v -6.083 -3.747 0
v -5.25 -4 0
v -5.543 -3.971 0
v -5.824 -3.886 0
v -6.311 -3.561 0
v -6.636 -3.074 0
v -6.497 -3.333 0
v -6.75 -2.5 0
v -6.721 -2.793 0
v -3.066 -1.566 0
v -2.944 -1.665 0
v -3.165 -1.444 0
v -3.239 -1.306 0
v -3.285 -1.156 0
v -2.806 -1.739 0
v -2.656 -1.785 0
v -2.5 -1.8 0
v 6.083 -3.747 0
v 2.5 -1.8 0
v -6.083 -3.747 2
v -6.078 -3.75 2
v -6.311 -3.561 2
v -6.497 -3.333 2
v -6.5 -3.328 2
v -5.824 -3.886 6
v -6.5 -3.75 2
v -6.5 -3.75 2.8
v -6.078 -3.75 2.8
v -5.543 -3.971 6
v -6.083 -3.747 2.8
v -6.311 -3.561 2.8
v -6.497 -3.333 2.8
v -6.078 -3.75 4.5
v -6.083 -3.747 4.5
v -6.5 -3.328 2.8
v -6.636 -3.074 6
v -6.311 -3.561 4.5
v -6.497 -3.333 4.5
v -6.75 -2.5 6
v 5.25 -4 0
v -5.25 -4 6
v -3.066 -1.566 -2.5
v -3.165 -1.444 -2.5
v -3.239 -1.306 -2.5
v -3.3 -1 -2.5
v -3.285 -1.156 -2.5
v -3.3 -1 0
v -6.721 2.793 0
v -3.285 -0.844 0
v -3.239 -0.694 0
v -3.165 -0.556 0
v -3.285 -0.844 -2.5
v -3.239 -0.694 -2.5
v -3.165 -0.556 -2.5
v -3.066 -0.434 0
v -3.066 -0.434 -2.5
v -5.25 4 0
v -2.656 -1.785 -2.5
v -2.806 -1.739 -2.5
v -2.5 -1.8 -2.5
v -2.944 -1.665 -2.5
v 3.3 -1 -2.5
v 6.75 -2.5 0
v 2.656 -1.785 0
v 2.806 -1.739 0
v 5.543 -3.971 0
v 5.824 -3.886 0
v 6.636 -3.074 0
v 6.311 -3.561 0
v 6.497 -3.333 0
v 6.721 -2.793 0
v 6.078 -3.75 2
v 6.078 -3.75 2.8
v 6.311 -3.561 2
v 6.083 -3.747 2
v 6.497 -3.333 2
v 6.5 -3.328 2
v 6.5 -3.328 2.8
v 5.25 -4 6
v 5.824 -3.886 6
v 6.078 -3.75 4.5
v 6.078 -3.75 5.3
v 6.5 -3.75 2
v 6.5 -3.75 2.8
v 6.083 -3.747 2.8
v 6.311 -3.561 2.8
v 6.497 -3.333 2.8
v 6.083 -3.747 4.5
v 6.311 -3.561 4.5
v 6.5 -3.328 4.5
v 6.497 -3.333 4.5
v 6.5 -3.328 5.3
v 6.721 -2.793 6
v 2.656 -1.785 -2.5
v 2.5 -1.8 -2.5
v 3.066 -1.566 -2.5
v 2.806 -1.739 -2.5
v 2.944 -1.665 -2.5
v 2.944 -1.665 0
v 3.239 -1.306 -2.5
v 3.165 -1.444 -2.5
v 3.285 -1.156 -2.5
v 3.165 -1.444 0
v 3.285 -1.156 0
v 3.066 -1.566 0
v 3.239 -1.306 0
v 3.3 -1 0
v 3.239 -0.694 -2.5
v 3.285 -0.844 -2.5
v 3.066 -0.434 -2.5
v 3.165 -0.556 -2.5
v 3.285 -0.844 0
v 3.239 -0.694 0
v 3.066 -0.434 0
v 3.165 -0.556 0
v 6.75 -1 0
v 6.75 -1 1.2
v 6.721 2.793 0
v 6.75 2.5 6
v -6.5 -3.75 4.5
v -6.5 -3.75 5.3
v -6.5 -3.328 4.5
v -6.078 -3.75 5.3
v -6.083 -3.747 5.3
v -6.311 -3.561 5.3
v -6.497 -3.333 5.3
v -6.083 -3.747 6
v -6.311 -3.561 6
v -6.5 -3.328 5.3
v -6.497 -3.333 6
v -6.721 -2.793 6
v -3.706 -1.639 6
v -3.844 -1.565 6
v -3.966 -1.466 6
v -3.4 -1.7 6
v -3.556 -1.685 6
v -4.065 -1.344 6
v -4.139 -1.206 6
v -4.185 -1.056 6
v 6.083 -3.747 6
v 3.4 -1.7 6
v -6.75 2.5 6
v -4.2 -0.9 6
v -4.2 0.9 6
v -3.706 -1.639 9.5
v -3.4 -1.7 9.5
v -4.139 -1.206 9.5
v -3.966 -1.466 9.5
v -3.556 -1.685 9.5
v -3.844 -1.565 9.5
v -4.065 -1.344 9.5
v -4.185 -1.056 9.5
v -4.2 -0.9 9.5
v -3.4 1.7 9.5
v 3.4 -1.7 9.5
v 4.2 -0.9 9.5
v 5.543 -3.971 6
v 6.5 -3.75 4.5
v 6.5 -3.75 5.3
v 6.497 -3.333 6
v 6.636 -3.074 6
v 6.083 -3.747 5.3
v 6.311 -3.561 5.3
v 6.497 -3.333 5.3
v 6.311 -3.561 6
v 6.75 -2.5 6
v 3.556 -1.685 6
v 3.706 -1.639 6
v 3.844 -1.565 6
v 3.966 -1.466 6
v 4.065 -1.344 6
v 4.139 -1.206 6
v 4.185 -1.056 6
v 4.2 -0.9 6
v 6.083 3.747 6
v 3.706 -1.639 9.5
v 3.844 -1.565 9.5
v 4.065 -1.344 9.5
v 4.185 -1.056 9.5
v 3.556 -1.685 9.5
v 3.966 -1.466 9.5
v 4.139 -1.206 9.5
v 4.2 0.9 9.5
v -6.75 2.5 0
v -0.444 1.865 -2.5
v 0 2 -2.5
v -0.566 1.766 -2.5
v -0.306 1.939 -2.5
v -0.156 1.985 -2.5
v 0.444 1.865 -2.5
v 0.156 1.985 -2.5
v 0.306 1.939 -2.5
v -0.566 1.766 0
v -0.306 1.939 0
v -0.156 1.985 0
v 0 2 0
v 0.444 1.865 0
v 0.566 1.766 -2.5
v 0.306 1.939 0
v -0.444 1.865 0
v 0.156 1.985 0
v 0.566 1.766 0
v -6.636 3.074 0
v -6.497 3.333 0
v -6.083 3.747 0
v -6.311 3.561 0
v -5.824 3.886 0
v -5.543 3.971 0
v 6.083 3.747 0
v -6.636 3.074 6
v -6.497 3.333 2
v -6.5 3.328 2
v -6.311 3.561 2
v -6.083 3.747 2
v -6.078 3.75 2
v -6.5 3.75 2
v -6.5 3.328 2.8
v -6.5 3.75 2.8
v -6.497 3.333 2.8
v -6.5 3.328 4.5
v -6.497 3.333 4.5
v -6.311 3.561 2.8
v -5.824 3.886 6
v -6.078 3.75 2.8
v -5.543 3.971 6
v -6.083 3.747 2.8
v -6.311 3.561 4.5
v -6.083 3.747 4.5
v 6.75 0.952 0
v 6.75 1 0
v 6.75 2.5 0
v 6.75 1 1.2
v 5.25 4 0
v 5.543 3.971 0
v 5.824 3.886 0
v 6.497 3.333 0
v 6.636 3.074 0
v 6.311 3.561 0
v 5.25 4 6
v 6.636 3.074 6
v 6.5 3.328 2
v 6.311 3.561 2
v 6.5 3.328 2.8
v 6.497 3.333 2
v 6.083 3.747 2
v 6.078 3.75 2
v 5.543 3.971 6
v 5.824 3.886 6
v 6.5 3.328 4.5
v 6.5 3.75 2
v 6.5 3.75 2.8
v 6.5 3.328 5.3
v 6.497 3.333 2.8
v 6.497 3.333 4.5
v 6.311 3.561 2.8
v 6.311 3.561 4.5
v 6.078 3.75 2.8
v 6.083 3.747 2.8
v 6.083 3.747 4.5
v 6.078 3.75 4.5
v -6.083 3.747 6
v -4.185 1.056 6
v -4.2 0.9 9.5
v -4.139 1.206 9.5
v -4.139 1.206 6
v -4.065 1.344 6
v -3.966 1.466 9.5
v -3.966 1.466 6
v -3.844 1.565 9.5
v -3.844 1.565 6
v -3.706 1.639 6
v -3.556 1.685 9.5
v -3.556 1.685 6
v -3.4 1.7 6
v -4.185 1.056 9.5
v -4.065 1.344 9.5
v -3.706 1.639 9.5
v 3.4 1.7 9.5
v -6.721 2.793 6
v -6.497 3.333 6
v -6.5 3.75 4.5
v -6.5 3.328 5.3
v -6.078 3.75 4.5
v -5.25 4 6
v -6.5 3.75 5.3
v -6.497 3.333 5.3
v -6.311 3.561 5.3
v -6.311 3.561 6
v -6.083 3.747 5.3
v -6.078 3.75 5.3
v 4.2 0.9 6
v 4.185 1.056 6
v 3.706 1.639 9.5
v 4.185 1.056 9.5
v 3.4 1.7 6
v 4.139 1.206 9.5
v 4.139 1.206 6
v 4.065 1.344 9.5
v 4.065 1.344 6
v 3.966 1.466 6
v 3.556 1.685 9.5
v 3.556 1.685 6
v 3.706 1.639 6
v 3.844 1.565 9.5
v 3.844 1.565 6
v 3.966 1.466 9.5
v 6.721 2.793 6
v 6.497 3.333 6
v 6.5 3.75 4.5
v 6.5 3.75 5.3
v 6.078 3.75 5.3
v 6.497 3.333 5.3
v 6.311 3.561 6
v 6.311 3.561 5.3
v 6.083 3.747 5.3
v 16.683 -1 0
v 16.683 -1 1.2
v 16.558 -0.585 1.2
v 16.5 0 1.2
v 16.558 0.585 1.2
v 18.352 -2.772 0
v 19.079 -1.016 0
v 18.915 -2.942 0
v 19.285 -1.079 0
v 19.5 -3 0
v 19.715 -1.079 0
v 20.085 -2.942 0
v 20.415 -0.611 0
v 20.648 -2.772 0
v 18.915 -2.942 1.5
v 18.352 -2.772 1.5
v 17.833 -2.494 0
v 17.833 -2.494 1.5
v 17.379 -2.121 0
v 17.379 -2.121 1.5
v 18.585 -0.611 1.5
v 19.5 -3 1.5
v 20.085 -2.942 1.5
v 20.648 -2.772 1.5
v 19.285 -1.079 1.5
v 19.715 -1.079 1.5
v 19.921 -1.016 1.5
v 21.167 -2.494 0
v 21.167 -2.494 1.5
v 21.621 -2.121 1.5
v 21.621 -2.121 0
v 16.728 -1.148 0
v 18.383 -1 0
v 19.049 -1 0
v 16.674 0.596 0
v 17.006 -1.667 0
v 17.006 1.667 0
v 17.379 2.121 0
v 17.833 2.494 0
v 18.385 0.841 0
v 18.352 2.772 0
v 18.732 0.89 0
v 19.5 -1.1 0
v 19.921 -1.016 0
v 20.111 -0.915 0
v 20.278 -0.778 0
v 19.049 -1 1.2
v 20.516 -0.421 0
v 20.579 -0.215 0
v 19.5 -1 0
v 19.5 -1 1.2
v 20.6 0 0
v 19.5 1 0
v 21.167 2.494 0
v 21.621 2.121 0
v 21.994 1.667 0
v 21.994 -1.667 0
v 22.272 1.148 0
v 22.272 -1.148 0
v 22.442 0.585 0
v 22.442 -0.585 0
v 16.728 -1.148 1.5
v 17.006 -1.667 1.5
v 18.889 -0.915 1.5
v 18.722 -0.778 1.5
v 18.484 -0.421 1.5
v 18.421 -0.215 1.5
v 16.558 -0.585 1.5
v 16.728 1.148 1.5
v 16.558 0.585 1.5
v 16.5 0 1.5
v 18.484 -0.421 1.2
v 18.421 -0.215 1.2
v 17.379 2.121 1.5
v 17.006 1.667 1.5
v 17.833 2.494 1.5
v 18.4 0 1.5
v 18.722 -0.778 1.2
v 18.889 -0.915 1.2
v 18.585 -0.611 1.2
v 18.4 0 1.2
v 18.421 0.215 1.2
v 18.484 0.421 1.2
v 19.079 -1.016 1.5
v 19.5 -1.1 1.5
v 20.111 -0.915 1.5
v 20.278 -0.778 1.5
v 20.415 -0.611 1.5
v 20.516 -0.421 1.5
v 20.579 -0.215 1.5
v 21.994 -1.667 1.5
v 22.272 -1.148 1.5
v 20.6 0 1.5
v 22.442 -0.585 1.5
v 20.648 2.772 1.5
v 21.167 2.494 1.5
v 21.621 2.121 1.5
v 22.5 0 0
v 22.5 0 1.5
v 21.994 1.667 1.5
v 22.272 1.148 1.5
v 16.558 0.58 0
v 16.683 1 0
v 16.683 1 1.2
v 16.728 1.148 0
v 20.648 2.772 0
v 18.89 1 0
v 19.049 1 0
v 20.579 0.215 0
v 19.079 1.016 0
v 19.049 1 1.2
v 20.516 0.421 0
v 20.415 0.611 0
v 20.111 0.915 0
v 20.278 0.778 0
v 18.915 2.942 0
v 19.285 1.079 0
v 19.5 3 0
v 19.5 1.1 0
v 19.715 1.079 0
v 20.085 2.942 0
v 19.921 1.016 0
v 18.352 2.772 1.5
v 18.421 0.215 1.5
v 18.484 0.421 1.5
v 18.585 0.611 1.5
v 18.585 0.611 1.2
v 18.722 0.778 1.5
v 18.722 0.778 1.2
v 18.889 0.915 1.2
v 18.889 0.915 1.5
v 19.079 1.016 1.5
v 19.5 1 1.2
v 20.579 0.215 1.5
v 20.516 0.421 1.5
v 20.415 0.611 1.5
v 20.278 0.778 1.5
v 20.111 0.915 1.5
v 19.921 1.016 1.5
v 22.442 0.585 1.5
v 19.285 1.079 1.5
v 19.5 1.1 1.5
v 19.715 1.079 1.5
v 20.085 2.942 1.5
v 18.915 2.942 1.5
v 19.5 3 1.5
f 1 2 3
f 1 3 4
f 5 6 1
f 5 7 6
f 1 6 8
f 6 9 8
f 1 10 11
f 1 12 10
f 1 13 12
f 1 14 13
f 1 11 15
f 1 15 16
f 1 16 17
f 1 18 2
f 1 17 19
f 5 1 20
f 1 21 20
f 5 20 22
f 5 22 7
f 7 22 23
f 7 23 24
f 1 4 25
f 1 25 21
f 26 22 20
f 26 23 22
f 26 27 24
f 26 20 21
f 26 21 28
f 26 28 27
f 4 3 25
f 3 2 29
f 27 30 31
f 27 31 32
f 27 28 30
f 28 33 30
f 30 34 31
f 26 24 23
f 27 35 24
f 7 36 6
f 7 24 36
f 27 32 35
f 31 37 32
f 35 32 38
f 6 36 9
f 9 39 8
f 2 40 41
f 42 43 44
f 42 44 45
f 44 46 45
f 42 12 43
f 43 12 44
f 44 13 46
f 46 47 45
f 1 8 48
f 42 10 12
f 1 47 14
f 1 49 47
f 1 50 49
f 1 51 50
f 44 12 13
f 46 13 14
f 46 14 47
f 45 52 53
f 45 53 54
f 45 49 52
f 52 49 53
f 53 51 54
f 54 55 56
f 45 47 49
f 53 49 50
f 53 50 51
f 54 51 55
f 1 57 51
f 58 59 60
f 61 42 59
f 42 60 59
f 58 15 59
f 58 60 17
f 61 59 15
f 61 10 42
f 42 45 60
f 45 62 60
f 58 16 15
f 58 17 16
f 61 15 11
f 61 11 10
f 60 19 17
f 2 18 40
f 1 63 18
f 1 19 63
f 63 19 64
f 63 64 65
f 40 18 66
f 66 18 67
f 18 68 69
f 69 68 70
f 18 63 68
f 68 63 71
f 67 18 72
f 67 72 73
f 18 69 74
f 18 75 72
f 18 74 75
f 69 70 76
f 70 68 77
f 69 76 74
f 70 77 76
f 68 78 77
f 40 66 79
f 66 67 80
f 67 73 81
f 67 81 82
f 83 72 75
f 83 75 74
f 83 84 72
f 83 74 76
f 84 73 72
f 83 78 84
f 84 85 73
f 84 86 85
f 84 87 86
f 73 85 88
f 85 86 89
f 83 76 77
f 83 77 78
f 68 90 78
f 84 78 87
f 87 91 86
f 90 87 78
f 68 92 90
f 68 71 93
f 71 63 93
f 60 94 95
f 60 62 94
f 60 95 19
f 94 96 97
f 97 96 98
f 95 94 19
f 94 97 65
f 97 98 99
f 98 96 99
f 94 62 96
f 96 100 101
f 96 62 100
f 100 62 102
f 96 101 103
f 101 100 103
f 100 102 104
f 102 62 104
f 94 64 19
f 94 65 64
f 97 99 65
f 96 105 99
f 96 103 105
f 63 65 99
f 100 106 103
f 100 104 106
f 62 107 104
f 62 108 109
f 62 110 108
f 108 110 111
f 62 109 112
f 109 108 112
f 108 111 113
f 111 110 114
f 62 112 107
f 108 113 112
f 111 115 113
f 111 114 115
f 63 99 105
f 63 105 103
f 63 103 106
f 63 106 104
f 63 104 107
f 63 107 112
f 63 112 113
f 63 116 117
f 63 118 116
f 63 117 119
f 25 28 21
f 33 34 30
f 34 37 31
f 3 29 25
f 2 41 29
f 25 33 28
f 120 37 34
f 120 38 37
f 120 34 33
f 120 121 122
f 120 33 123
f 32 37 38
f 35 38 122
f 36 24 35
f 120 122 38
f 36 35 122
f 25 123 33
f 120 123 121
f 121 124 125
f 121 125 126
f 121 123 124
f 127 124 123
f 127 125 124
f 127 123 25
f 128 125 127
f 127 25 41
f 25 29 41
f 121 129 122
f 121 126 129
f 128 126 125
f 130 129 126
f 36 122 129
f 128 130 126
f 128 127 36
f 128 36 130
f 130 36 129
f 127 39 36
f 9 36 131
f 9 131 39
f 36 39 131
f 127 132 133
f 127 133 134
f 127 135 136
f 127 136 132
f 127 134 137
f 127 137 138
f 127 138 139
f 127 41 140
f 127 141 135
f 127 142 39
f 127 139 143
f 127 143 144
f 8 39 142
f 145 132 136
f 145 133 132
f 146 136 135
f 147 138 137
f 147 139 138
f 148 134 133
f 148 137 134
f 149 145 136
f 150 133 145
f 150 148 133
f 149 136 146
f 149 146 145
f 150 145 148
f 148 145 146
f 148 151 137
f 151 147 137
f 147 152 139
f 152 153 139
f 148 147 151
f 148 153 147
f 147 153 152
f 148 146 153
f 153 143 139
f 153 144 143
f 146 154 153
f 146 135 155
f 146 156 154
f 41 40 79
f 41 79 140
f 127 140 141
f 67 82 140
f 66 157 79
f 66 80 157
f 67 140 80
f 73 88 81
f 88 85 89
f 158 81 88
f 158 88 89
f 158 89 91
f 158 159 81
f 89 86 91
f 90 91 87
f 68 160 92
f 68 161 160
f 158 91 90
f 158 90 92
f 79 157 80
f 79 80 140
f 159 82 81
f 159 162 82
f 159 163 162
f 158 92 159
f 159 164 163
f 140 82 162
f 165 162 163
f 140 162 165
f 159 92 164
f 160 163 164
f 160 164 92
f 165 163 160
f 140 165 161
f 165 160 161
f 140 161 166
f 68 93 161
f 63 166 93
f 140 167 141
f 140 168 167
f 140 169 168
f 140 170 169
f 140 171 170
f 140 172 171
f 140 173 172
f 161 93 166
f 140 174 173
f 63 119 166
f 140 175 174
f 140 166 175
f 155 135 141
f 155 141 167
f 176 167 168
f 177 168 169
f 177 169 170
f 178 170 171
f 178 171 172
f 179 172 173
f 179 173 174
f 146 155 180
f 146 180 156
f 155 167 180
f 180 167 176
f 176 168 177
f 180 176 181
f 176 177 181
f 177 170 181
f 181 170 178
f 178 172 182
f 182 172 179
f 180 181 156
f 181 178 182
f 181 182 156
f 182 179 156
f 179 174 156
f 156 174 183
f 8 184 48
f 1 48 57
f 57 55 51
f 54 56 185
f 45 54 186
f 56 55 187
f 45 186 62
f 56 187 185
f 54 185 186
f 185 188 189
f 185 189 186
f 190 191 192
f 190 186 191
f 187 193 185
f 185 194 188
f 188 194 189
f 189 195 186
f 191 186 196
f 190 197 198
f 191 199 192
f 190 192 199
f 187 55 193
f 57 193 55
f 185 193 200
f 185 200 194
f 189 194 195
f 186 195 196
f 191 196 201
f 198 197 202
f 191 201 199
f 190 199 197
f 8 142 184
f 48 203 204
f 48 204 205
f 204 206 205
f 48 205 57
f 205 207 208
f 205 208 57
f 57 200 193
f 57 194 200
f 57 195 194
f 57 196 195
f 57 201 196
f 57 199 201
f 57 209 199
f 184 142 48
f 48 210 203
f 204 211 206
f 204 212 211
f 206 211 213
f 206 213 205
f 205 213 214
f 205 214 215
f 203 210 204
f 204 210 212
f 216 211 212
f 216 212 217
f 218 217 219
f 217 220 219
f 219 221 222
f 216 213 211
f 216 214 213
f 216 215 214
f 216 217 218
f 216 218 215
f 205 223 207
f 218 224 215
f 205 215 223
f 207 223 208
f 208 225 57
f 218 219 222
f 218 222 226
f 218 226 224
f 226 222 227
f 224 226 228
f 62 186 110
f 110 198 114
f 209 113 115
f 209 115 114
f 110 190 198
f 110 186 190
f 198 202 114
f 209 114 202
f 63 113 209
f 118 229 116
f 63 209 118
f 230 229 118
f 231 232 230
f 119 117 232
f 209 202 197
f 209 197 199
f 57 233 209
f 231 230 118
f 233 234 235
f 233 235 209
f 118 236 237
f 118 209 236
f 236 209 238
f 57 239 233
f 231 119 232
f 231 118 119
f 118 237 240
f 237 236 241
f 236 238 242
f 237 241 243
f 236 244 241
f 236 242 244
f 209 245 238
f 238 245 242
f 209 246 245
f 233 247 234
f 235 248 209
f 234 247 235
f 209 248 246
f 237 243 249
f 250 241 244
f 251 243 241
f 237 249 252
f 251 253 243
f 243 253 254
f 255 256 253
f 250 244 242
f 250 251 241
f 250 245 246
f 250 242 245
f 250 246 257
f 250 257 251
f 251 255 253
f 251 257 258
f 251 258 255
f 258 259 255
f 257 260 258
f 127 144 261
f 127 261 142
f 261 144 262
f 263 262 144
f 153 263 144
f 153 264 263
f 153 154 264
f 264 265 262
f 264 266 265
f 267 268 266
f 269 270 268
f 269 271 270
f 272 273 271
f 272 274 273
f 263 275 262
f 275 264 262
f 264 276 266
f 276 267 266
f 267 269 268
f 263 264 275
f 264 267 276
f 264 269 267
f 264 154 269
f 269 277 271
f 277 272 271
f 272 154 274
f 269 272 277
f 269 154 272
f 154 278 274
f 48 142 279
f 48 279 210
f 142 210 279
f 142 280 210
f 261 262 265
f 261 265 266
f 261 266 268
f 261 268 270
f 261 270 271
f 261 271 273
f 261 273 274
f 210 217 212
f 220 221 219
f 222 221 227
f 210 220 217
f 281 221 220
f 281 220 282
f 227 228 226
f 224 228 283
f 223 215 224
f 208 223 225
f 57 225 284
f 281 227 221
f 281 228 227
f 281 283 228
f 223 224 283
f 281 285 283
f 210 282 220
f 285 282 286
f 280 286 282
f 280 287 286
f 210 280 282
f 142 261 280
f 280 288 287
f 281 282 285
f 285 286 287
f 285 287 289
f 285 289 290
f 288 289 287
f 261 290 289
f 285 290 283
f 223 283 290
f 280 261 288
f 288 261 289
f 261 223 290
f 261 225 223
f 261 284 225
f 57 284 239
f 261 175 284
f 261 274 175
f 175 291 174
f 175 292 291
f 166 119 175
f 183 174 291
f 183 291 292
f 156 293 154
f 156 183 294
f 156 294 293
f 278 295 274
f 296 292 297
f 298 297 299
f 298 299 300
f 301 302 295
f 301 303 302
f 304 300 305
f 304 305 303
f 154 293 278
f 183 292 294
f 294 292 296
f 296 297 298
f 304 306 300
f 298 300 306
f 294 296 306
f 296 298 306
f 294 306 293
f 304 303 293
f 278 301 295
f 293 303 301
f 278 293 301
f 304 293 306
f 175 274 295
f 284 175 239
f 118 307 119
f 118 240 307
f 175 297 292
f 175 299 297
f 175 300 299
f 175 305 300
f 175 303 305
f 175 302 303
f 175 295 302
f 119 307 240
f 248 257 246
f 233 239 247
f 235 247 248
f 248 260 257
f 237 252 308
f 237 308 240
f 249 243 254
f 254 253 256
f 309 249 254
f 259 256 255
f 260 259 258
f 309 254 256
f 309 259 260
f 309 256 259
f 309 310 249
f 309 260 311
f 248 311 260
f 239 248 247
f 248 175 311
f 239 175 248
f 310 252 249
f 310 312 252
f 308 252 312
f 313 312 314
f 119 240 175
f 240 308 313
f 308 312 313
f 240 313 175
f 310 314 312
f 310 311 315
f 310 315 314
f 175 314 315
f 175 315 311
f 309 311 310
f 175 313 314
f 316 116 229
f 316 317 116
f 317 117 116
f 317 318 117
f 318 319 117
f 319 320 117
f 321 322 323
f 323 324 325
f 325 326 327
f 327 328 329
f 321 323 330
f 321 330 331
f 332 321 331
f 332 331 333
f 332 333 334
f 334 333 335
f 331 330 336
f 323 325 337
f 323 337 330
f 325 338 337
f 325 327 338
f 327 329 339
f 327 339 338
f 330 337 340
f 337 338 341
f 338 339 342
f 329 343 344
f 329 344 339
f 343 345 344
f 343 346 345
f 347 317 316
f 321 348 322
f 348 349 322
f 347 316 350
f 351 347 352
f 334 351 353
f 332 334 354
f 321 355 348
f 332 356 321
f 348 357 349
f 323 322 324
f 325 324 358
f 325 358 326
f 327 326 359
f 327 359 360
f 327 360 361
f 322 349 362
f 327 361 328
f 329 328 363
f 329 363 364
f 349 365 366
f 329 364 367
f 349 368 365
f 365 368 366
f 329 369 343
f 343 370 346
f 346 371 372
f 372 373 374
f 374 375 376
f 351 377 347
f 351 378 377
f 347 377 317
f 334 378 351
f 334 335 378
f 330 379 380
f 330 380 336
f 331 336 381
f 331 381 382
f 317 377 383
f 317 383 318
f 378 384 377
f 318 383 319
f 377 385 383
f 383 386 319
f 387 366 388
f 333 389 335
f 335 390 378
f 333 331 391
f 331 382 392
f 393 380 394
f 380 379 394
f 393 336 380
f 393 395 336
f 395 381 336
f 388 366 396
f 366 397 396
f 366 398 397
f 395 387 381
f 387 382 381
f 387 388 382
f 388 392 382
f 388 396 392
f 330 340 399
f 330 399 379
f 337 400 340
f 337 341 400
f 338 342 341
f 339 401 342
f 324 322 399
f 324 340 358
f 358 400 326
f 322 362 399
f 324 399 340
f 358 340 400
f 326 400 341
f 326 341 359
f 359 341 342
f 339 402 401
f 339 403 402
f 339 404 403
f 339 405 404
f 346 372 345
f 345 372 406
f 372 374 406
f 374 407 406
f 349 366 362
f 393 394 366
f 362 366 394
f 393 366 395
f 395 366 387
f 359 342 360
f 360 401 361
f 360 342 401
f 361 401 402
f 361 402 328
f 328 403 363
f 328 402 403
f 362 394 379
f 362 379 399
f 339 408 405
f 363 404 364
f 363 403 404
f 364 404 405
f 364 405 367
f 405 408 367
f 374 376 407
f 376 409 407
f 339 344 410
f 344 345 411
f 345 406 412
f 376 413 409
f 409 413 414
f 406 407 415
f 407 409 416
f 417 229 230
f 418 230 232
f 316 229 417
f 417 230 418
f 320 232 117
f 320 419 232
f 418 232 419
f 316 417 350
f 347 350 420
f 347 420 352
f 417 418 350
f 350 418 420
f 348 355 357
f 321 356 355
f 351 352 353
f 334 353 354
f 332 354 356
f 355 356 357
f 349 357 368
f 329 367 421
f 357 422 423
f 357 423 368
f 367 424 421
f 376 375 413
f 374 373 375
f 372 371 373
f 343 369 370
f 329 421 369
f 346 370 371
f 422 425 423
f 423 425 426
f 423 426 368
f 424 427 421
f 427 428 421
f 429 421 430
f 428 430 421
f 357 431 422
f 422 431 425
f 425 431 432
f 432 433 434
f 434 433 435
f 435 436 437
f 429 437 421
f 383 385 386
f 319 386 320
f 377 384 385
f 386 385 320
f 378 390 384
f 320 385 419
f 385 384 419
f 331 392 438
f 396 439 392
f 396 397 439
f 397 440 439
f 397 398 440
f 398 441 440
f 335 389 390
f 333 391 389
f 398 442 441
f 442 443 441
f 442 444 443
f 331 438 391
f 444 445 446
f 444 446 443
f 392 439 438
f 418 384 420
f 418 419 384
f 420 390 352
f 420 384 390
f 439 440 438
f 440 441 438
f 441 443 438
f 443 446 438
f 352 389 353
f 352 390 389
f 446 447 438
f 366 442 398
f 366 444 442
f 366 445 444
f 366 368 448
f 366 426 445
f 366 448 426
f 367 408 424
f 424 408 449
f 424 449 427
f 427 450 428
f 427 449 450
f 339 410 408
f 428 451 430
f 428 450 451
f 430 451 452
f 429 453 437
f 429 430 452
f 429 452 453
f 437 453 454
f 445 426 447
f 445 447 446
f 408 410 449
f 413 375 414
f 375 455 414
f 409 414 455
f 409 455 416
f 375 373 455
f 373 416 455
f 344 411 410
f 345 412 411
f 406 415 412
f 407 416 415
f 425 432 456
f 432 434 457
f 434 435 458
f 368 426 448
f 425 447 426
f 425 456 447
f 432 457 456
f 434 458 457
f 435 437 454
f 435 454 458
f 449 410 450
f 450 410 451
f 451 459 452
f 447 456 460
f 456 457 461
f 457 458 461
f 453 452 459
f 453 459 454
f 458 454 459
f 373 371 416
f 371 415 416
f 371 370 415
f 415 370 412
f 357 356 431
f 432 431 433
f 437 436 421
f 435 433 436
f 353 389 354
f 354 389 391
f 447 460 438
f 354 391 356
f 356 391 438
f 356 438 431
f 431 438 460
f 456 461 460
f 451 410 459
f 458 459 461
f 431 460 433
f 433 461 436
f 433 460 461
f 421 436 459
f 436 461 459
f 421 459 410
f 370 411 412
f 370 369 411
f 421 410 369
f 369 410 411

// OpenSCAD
// =============================================================================
// OpenMotorBridge - Satellite Pod: Port B USB-C Waterproof TPU Sealing Cap
// =============================================================================
// File: hardware/cad/scad/02_pod_base/parts/008_pod_base_usbc_cap_tpu.scad
// Description: Print-ready flush-fitting TPU dust and water sealing cap
//              (Shore 85A/95A) for Pod Base Port B. Protects the internal
//              USB-C connector when the pod operates outdoors via Port A (M8).
// =============================================================================

$fn = 32;

module pod_base_usbc_cap_tpu() {
    color([0.2, 0.2, 0.2, 0.95]) {
        union() {
            // 1. Plug Well Body (Fits snugly into the 14.0 x 8.5 x 7.0 mm recessed pocket)
            hull() {
                translate([-5.25, -2.5, 0])
                    cylinder(r=1.5, h=6.0, center=false);
                translate([5.25, -2.5, 0])
                    cylinder(r=1.5, h=6.0, center=false);
                translate([-5.25, 2.5, 0])
                    cylinder(r=1.5, h=6.0, center=false);
                translate([5.25, 2.5, 0])
                    cylinder(r=1.5, h=6.0, center=false);
            }

            // Dual Perimeter Sealing Ribs (+0.2 mm interference fit against pocket walls)
            translate([-6.5, -3.75, 2.0])
                cube([13.0, 7.5, 0.8], center=false);
            translate([-6.5, -3.75, 4.5])
                cube([13.0, 7.5, 0.8], center=false);

            // 2. Inner Receptacle Sealing Tongue (Plugs into vertical USB-C mouth)
            translate([0, 0, 6.0]) {
                hull() {
                    translate([-3.4, -0.9, 0])
                        cylinder(r=0.8, h=3.5, center=false);
                    translate([3.4, -0.9, 0])
                        cylinder(r=0.8, h=3.5, center=false);
                    translate([-3.4, 0.9, 0])
                        cylinder(r=0.8, h=3.5, center=false);
                    translate([3.4, 0.9, 0])
                        cylinder(r=0.8, h=3.5, center=false);
                }
            }

            // 3. Ergonomic Finger Pull Tab (Griffnase)
            translate([0, 0, -2.5]) {
                hull() {
                    translate([-2.5, -1.0, 0])
                        cylinder(r=0.8, h=2.5, center=false);
                    translate([2.5, -1.0, 0])
                        cylinder(r=0.8, h=2.5, center=false);
                    translate([0, 1.2, 0])
                        cylinder(r=0.8, h=2.5, center=false);
                }
            }

            // 4. Flexible Retaining Lanyard / Tether (Verliersicherung)
            translate([5.5, 0, 0]) {
                // Curved flexible strap
                translate([0, -1.0, 0])
                    cube([14.0, 2.0, 1.2], center=false);

                // Retaining Eyelet with M2 screw hole
                translate([14.0, 0, 0]) {
                    difference() {
                        cylinder(r=3.0, h=1.5, center=false);
                        translate([0, 0, -0.5])
                            cylinder(r=1.1, h=2.5, center=false); // Ø 2.2 mm screw bore
                    }
                }
            }
        }
    }
}

// Standalone render preview
pod_base_usbc_cap_tpu();
